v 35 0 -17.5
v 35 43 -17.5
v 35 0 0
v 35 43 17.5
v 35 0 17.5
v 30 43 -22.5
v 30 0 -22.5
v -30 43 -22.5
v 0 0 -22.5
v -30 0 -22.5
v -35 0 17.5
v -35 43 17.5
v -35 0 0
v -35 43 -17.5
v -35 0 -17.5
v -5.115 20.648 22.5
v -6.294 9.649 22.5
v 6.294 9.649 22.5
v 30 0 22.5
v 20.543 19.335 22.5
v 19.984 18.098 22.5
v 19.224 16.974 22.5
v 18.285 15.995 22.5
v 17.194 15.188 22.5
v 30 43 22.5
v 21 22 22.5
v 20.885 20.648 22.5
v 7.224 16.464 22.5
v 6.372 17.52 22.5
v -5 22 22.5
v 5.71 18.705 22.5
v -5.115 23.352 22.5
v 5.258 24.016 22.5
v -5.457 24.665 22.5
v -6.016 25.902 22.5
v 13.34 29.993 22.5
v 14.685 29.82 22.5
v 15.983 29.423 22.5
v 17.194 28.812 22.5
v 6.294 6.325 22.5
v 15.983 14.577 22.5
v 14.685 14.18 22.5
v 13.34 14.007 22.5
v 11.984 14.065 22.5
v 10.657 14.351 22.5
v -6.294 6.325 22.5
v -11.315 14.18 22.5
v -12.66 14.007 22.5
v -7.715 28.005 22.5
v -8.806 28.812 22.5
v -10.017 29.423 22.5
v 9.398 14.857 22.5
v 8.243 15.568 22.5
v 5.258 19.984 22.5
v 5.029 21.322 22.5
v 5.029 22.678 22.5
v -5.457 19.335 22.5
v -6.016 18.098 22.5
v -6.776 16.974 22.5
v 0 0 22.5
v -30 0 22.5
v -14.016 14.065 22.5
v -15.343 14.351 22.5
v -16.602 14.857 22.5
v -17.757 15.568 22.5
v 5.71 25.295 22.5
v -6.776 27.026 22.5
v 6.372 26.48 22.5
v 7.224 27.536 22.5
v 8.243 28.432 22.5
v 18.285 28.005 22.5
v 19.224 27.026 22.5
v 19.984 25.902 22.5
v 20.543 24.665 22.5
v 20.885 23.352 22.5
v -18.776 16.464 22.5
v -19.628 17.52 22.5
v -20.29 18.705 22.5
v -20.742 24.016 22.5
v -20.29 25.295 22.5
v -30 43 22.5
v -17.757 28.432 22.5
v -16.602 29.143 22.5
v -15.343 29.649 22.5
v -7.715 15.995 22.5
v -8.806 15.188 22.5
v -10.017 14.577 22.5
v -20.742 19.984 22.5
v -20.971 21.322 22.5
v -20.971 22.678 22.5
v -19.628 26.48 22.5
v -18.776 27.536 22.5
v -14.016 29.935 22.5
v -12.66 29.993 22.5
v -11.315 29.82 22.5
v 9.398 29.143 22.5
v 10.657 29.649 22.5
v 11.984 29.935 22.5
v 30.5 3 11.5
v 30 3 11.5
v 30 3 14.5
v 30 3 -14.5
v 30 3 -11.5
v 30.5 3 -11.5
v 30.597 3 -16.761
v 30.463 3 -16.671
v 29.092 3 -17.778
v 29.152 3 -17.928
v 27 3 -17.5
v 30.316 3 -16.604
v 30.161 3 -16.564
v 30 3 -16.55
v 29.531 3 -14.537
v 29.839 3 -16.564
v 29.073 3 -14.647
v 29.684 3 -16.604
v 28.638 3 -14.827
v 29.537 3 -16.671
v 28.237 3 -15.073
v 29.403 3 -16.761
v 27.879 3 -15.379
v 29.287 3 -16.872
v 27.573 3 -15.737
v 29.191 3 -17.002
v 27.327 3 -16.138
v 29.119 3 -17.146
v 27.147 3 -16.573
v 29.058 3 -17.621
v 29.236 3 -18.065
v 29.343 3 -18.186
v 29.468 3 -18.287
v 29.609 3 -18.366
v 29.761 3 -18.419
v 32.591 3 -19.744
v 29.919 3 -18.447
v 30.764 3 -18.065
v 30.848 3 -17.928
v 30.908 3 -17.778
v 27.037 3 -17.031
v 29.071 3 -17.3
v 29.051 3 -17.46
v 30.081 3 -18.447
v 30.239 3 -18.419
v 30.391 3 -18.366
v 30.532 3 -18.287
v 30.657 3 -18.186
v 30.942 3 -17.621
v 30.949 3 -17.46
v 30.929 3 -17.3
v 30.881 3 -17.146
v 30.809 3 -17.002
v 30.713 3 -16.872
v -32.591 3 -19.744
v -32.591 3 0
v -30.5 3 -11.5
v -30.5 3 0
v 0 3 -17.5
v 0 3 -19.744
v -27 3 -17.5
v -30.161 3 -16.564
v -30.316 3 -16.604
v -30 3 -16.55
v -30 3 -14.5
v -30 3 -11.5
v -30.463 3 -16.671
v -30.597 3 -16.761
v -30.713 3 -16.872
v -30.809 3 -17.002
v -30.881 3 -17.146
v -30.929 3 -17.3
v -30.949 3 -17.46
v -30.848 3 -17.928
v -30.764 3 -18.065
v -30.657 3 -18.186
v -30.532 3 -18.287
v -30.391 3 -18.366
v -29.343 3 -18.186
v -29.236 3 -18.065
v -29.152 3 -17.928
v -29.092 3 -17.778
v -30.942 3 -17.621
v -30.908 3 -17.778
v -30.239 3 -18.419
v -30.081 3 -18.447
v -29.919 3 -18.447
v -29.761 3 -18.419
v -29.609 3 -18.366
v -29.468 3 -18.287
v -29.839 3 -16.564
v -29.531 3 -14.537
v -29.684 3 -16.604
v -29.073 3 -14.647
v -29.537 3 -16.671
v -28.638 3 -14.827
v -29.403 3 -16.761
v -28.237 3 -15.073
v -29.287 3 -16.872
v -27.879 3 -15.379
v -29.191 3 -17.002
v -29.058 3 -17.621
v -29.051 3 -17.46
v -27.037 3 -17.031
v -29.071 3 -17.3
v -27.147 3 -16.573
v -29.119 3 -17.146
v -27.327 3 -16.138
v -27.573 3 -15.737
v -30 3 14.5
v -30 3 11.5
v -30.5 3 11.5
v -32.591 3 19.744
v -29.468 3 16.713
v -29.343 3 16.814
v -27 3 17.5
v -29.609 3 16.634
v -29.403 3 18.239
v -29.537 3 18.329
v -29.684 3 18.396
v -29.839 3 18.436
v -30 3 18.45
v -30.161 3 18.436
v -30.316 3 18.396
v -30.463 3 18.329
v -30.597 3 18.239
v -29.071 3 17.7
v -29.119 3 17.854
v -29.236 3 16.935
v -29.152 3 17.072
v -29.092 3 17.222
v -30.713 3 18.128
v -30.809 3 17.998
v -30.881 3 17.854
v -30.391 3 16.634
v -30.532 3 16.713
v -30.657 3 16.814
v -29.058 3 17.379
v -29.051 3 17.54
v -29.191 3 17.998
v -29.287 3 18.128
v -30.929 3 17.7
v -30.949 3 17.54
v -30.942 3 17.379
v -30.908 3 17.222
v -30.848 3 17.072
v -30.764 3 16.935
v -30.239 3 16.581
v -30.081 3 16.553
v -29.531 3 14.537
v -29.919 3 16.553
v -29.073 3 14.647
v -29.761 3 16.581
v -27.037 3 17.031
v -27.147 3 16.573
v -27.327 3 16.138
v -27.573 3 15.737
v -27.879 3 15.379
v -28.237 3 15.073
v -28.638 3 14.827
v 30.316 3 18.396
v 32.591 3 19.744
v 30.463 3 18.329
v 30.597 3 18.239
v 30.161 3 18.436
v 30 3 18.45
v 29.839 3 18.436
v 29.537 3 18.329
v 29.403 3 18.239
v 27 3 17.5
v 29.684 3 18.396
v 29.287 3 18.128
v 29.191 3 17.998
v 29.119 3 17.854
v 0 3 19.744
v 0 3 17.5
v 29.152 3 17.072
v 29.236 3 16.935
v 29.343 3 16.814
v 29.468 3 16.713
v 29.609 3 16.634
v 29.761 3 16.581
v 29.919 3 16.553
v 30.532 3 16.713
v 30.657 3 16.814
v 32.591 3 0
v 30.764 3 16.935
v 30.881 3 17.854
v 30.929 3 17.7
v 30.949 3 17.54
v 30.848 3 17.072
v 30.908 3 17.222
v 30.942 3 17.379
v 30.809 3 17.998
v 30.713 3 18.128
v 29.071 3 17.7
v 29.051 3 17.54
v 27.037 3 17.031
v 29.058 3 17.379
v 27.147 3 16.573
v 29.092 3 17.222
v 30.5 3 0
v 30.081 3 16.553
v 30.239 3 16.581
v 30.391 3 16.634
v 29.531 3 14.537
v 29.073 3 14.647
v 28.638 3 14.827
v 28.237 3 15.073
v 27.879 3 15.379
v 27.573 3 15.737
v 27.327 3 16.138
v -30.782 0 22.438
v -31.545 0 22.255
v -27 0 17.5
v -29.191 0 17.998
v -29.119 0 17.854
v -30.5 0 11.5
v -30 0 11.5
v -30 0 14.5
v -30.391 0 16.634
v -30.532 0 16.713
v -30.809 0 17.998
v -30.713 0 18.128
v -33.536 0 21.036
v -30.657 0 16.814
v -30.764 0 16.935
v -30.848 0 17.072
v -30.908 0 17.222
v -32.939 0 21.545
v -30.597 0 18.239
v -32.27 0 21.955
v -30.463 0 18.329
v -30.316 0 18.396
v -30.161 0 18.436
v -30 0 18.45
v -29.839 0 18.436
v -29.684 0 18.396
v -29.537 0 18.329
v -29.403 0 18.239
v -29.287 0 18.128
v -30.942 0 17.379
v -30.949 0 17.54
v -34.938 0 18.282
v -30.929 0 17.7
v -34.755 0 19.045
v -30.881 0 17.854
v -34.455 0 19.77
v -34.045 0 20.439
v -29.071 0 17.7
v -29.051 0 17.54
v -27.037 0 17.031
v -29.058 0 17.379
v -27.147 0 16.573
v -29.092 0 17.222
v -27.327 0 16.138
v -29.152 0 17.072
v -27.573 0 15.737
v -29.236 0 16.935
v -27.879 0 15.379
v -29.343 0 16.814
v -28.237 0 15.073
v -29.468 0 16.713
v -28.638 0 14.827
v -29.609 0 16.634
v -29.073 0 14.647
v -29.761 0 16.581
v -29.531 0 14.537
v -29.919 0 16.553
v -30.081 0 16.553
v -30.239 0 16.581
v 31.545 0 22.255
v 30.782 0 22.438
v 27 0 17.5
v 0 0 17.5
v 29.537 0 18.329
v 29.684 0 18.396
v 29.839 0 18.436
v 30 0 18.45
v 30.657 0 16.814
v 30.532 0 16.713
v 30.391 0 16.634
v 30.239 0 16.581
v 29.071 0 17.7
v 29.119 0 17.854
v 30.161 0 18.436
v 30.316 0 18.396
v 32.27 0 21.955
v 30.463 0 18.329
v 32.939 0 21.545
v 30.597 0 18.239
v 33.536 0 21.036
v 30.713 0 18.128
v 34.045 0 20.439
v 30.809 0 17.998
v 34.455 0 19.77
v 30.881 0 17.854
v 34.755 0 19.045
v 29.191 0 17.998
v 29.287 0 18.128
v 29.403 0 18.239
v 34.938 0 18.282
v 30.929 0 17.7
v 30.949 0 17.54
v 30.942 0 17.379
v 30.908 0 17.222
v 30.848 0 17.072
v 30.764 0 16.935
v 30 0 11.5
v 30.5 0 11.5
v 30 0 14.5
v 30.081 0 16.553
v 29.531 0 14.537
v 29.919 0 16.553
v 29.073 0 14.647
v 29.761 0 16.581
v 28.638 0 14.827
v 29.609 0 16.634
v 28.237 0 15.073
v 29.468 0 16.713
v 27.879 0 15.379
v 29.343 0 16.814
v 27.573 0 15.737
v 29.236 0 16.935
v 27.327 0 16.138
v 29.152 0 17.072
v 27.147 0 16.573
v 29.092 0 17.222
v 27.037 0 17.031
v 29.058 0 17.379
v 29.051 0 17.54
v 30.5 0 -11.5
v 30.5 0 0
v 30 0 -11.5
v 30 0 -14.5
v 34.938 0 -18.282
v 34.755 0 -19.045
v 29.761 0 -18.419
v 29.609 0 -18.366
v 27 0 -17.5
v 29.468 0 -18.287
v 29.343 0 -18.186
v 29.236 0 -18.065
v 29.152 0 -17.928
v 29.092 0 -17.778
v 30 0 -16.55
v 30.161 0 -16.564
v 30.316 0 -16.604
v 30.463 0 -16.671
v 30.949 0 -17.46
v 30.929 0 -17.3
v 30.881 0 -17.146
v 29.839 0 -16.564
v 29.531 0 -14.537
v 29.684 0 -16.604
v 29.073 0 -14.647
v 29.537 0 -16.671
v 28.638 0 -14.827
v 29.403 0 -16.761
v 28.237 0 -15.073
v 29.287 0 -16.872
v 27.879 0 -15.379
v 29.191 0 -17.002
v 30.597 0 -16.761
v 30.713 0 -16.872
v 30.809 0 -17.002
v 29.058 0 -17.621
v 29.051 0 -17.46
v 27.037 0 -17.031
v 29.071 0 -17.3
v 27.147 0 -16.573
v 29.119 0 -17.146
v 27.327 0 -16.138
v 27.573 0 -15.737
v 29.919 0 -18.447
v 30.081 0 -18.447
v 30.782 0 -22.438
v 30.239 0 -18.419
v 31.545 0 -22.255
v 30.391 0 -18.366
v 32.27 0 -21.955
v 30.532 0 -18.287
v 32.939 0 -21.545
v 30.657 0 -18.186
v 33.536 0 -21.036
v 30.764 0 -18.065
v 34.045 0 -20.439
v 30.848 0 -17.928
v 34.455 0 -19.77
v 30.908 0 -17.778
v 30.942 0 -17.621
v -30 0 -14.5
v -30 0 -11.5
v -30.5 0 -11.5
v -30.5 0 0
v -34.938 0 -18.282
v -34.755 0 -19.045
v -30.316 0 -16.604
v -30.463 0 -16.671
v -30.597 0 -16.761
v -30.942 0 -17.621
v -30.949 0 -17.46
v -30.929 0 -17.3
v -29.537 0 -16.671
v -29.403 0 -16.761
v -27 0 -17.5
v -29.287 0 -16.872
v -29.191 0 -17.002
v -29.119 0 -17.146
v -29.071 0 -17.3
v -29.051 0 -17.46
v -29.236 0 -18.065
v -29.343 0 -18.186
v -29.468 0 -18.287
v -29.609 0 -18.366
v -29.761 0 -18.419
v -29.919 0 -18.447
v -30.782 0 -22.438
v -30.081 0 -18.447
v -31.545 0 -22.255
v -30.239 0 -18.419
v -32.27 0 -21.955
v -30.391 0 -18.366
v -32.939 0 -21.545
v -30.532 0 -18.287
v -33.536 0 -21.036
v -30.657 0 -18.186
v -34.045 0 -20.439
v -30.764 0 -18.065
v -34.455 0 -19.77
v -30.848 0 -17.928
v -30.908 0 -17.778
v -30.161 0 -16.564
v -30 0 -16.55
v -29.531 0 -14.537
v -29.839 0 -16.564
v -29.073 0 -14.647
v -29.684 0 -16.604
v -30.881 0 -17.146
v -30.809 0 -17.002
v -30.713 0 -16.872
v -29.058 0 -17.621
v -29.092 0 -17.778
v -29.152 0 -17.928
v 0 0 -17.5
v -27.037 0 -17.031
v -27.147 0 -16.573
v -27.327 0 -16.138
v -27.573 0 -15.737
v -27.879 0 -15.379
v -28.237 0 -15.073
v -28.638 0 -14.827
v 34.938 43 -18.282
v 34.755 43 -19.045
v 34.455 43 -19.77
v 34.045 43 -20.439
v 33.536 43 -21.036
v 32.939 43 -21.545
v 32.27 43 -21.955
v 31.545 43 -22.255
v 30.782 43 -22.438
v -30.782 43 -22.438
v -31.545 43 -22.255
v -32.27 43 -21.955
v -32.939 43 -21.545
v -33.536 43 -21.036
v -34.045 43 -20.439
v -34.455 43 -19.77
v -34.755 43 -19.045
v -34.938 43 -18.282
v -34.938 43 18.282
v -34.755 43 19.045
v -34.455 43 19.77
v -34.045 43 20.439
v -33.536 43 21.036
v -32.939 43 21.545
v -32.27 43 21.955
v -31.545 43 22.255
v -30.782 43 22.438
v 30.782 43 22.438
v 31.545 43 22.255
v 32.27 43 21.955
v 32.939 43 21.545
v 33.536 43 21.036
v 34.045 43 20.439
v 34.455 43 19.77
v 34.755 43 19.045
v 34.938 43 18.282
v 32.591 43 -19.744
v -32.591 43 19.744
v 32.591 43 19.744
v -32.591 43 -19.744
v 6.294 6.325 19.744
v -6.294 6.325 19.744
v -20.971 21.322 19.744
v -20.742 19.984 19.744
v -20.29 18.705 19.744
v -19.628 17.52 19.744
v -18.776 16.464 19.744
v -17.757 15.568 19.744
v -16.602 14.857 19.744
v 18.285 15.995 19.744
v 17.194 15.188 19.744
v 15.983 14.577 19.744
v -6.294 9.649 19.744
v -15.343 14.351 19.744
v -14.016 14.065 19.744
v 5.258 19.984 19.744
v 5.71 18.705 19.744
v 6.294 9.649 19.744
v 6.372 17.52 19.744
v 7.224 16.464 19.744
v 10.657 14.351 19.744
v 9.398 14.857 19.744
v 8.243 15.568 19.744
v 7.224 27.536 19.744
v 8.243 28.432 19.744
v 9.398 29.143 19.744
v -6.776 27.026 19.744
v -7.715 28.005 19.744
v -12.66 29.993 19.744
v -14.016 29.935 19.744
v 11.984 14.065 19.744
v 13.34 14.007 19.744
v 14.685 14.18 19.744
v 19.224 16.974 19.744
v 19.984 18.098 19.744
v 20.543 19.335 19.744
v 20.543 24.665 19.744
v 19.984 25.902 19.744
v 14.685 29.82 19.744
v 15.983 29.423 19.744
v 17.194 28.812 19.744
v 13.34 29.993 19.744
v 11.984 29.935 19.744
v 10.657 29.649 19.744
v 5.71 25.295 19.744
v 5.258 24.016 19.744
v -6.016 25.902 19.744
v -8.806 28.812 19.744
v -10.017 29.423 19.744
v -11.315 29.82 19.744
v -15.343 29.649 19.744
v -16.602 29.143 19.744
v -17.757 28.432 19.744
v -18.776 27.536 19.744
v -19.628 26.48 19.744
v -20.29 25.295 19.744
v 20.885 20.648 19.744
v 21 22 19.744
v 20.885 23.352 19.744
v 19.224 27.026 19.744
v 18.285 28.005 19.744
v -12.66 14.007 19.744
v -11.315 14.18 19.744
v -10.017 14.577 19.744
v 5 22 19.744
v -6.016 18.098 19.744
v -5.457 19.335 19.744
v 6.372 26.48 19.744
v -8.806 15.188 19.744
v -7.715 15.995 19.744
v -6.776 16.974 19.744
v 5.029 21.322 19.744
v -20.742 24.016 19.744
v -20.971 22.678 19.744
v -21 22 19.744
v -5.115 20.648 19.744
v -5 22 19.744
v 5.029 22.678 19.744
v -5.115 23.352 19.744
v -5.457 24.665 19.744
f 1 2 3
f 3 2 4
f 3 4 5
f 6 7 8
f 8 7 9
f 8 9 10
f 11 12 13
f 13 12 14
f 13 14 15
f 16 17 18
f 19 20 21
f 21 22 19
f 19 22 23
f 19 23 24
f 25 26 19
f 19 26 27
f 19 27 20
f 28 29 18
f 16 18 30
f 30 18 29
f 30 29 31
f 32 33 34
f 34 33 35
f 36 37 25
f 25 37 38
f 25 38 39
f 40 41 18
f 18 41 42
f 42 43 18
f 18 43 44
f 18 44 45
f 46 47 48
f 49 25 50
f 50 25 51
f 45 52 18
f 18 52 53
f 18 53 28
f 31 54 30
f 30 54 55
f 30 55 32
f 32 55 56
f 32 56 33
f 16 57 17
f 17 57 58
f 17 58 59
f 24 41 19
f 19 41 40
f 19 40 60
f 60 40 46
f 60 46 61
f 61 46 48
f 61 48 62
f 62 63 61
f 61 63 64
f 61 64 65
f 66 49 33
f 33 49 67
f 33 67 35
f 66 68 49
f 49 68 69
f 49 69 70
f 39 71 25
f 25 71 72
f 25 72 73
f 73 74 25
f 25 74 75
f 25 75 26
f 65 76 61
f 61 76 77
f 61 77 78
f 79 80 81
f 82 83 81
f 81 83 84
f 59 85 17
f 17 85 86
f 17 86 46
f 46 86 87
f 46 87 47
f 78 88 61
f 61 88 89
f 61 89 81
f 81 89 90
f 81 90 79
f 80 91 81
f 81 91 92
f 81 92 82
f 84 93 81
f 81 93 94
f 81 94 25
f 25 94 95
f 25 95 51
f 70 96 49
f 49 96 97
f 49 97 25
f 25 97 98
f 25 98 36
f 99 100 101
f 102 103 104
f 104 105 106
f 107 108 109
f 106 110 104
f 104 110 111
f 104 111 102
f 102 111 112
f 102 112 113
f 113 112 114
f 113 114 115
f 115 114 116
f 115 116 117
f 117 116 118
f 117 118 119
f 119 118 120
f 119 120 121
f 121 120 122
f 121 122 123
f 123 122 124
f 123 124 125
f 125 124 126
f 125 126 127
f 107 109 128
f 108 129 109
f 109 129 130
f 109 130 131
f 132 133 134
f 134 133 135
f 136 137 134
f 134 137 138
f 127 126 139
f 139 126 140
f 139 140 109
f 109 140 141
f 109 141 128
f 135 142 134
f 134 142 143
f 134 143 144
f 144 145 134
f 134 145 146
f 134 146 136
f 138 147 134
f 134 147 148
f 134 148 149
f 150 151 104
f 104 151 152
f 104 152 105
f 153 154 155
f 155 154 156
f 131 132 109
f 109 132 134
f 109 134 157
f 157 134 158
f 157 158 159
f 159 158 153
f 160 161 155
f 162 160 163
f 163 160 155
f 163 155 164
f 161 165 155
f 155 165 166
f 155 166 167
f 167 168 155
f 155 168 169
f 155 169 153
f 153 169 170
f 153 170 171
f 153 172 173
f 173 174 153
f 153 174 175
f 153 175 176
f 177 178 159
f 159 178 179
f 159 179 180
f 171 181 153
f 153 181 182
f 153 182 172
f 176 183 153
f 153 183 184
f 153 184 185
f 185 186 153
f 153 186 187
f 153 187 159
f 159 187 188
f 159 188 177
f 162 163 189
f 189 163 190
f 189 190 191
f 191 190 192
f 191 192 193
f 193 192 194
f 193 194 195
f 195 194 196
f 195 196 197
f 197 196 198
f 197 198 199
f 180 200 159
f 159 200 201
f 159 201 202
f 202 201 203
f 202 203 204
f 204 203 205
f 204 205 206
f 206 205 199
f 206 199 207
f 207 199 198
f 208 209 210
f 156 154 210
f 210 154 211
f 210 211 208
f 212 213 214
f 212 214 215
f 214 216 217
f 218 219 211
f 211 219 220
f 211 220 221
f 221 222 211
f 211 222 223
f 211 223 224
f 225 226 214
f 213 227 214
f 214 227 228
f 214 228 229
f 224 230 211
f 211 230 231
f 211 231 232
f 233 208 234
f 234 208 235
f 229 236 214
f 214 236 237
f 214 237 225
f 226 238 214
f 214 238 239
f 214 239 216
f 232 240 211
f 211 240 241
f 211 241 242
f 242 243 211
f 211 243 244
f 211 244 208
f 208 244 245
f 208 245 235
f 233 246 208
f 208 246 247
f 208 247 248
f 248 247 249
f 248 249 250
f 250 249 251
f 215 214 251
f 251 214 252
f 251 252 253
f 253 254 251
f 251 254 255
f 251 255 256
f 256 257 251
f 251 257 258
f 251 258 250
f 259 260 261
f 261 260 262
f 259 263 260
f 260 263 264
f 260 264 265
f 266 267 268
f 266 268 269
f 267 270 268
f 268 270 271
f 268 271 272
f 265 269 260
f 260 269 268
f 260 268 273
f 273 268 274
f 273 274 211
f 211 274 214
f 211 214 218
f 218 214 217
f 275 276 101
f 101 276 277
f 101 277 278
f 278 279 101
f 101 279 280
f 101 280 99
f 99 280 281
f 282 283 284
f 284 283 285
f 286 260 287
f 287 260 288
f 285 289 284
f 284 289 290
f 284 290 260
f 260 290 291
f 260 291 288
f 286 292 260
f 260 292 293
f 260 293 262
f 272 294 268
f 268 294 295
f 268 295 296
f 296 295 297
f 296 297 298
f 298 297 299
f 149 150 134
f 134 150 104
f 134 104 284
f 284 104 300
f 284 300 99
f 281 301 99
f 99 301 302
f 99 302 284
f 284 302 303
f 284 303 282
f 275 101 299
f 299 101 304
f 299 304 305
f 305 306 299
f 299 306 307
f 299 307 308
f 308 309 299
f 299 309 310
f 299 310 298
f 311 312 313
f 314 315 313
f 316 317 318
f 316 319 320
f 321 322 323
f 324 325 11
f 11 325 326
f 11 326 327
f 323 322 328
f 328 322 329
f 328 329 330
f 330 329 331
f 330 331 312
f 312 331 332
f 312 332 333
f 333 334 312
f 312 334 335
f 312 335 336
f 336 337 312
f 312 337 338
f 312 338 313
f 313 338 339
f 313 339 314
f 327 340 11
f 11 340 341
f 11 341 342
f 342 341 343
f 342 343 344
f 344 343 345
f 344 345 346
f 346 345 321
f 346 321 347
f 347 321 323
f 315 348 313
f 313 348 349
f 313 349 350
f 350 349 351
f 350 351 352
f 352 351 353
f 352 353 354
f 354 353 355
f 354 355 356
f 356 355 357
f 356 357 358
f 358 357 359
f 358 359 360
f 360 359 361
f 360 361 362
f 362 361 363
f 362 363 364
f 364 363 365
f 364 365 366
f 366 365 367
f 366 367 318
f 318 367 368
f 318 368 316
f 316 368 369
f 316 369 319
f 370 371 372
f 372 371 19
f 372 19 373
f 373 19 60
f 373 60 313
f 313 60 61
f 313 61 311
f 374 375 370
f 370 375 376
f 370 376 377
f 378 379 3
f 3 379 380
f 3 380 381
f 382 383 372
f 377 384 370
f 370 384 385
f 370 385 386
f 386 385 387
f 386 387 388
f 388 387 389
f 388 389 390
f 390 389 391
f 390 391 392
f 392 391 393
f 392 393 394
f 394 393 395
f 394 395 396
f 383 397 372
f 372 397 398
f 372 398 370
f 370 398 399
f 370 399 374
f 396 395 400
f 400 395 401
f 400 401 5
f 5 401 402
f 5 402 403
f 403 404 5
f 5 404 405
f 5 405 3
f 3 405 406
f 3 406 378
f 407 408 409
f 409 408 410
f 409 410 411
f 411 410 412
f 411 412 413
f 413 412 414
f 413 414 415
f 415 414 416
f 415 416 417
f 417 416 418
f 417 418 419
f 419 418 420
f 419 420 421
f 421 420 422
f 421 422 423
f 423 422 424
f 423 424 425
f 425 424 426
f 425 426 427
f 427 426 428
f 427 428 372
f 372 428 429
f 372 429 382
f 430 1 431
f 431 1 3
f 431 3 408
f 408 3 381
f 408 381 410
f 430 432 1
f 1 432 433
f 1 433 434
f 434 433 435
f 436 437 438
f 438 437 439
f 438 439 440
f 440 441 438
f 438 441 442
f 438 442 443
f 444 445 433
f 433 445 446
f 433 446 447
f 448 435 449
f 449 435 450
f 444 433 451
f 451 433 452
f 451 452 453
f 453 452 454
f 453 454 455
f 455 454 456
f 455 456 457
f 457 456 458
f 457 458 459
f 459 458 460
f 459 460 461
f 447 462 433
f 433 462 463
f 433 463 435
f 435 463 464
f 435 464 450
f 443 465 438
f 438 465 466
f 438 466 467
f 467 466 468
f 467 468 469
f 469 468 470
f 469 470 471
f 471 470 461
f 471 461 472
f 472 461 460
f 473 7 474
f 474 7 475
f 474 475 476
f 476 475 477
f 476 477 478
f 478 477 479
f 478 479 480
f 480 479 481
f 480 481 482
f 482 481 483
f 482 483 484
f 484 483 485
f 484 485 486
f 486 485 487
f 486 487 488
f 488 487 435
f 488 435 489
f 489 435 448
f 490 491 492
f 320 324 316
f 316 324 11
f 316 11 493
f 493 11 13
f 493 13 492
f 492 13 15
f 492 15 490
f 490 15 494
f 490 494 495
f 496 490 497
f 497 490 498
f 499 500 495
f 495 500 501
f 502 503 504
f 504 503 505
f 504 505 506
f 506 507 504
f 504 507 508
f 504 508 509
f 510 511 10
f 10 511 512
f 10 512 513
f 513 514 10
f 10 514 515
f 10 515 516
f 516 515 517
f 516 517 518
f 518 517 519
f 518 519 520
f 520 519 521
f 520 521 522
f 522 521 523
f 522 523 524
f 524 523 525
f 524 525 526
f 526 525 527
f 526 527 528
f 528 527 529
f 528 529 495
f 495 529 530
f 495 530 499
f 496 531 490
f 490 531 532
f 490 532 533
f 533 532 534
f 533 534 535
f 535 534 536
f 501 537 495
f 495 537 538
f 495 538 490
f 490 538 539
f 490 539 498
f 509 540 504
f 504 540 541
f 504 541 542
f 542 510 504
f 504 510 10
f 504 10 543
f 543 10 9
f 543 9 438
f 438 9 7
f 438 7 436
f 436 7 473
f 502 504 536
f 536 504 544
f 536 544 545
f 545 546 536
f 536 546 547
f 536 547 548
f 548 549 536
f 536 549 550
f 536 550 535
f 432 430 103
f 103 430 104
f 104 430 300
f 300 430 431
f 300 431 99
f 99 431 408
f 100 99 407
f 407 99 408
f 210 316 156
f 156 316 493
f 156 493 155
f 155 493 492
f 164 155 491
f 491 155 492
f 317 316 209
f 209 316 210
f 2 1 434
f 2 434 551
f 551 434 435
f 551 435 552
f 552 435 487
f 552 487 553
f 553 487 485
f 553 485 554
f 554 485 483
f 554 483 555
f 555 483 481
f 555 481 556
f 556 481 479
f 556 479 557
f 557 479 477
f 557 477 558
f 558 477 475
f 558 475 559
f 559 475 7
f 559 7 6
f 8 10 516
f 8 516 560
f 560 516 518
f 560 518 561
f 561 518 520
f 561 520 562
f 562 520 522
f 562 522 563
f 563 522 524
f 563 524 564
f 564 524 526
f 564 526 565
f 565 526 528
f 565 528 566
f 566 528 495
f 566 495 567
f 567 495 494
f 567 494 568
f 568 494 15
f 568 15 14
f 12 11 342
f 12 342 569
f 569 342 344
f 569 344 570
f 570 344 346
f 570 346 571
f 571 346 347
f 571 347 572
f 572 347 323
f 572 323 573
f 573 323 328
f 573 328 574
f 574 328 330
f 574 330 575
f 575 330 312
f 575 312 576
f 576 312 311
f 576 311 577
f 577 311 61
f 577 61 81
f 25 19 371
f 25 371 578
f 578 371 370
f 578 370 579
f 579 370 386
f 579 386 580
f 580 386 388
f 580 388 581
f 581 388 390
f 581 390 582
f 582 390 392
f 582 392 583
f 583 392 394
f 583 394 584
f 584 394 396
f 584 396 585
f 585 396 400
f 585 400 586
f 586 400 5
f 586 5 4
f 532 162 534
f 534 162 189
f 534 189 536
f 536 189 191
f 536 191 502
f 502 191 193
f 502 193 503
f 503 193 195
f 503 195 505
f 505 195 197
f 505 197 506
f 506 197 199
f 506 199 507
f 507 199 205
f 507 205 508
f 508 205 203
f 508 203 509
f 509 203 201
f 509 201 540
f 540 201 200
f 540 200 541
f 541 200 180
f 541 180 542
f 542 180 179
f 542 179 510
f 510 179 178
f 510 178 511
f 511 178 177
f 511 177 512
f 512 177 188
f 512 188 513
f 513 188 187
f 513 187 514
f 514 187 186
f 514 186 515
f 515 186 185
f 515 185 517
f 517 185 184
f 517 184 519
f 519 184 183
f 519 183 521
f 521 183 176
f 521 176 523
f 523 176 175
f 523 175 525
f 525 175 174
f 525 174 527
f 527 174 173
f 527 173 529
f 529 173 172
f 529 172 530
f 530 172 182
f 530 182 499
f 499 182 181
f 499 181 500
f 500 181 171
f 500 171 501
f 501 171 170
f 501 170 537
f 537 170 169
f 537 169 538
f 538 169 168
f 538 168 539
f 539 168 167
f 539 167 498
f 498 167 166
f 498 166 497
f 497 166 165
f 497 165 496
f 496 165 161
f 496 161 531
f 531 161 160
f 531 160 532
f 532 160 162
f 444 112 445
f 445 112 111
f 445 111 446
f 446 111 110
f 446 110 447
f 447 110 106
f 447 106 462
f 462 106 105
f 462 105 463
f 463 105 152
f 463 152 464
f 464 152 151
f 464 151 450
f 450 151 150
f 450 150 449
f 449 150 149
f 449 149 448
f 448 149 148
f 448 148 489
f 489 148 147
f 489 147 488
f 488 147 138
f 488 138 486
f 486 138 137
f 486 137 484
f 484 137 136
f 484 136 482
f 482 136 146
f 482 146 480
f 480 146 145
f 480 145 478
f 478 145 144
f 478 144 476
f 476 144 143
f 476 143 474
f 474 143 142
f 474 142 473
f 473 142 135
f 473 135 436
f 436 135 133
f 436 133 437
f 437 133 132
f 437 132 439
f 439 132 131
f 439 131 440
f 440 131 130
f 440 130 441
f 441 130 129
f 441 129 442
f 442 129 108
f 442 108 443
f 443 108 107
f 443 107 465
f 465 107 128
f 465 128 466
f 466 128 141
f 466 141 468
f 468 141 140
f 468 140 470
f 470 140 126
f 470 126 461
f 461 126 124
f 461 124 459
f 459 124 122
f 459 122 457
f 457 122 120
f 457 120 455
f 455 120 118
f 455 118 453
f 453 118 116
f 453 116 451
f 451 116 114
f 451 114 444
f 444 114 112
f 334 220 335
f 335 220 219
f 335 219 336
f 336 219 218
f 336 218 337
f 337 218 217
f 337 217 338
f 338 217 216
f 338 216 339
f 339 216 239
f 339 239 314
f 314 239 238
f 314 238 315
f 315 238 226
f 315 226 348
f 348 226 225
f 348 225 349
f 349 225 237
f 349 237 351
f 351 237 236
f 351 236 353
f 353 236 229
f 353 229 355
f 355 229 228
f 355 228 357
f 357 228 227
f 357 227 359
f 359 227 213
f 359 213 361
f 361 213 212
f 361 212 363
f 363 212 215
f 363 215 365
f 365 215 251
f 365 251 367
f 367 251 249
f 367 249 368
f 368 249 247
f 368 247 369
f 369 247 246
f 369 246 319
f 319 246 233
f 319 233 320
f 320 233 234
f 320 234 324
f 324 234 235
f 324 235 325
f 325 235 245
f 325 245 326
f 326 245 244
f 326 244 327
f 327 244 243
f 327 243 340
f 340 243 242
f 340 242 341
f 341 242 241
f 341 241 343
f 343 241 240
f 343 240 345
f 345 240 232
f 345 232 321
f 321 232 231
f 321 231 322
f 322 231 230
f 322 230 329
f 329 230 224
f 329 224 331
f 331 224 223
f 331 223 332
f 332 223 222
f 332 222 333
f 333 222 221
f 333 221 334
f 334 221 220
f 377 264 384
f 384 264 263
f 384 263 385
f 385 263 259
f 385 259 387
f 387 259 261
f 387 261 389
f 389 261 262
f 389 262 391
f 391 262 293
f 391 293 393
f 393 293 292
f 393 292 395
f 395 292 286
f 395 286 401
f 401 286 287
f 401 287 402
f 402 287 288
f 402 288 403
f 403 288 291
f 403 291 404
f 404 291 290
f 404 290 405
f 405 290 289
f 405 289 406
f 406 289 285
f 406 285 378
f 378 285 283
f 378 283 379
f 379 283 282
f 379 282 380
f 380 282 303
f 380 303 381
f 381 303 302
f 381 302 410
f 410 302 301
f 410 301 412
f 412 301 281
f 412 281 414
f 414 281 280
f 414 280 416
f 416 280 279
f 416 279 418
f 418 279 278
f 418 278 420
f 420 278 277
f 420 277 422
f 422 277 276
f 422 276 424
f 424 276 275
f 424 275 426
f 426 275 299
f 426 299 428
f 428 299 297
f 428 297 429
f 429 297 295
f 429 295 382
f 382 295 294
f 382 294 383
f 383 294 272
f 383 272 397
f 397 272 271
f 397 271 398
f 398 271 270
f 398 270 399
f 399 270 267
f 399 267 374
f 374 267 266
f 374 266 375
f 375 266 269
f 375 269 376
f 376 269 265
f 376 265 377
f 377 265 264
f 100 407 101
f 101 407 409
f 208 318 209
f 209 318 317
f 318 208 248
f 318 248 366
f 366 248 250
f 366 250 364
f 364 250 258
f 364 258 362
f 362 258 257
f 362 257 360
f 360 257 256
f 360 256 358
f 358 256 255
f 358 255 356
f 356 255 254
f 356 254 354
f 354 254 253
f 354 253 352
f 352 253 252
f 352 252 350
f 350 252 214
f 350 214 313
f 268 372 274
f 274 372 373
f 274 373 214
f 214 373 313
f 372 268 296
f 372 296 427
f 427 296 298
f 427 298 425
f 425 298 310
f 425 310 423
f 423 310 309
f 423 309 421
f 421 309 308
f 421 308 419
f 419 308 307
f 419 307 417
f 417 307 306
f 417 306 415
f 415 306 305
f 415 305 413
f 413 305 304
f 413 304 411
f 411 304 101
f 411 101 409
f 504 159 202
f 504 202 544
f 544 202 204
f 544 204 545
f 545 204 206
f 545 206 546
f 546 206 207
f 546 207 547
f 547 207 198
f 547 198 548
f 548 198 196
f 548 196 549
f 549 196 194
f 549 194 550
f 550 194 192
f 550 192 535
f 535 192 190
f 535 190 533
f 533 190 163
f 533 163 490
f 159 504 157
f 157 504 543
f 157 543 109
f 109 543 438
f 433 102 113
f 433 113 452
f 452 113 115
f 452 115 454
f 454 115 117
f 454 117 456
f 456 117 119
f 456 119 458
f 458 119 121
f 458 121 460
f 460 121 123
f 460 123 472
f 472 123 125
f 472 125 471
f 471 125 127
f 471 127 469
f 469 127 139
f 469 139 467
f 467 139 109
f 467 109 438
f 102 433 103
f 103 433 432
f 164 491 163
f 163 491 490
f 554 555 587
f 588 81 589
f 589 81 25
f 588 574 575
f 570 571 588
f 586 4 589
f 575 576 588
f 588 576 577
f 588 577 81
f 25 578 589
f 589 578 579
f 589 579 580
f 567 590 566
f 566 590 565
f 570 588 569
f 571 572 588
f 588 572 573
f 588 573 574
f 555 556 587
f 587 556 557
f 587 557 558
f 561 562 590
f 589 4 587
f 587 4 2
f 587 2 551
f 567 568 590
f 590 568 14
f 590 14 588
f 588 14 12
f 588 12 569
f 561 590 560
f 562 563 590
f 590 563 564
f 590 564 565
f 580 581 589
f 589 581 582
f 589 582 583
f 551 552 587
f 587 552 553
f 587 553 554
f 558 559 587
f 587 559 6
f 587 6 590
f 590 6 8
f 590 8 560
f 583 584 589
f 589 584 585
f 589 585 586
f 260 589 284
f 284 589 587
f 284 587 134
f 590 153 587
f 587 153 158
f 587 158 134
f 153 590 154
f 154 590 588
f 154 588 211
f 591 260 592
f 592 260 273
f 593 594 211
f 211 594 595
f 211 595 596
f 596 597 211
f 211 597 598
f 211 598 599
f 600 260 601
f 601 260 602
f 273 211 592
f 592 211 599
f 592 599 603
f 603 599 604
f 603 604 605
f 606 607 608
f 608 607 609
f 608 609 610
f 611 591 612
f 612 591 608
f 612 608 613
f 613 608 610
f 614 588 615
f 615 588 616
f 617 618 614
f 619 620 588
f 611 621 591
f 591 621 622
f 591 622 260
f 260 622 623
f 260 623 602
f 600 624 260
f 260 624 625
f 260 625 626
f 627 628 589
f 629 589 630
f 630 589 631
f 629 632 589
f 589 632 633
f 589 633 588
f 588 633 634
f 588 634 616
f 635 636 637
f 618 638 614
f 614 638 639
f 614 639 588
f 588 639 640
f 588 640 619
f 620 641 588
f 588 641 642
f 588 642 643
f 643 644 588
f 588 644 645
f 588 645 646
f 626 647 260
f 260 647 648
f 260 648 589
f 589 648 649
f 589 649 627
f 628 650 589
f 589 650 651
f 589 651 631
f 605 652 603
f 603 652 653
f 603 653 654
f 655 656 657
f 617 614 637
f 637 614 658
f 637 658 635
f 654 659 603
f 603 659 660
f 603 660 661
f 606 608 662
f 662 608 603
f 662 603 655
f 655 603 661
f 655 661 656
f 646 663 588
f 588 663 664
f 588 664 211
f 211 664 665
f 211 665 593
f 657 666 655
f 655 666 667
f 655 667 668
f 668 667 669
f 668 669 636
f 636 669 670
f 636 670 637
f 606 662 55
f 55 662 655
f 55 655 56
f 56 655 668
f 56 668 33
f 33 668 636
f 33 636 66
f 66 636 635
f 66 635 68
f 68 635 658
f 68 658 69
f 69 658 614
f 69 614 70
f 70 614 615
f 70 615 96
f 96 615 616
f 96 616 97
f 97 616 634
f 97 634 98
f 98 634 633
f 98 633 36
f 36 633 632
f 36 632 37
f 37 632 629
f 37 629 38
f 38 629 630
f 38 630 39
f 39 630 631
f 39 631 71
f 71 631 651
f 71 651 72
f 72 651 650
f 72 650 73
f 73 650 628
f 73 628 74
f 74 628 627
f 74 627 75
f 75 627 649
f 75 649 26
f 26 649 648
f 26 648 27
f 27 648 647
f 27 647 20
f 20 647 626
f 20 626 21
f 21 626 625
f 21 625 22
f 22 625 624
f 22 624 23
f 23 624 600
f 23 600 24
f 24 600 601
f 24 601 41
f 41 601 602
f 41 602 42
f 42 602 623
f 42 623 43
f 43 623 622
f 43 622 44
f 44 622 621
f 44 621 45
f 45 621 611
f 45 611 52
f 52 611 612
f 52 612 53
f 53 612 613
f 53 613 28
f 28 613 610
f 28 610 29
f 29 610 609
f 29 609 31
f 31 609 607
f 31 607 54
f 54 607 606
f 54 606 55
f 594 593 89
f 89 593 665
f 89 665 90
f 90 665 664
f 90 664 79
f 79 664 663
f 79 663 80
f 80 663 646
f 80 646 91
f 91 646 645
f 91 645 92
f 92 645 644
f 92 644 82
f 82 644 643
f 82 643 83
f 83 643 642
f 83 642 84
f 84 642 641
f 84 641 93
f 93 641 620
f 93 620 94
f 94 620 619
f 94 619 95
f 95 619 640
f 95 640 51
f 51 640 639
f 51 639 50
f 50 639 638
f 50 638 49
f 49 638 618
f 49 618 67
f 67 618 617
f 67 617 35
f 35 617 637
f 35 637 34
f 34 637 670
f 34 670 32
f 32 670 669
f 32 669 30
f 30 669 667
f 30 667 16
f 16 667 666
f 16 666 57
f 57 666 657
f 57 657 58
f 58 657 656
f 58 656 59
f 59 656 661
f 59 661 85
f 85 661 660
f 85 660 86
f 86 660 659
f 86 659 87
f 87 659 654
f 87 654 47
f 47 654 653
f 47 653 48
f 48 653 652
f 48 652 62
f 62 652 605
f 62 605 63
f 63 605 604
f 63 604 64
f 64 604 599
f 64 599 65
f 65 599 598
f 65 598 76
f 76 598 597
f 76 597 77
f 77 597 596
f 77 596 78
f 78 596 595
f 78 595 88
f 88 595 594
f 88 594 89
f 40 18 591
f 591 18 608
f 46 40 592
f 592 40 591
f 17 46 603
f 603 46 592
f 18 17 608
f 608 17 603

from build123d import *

# Parameters (mm, degrees)
SKETCH_1_W          = 70
SKETCH_1_H          = 45
EXTRUDE_1_DEPTH     = 3
SKETCH_2_W          = 13
SKETCH_2_H          = 23
CUT_EXTRUDE_1_DEPTH = 10
SKETCH_3_R          = 0.95
CUT_EXTRUDE_2_DEPTH = 10
FILLET_1_R          = 5
FILLET_2_R          = 5
SKETCH_4_R          = 0.95
CUT_EXTRUDE_3_DEPTH = 10
CUT_EXTRUDE_4_DEPTH = 10
SKETCH_9_W          = 65.182596022
SKETCH_9_H          = 39.488918008
EXTRUDE_2_DEPTH     = 40
SKETCH_10_R         = 8
SKETCH_10_W         = 12.58723815
SKETCH_10_H         = 3.324068903
CUT_EXTRUDE_5_DEPTH = 26


with BuildPart() as part:
    # 草图1 → 凸台-拉伸1 (new body)
    with BuildSketch(Plane(origin=(0, 0, 0), x_dir=(1, 0, 0), z_dir=(0, 1, 0))):
        Rectangle(SKETCH_1_W, SKETCH_1_H)
    extrude(amount=EXTRUDE_1_DEPTH)

    # 草图2 → 切除-拉伸1 (cut)
    with BuildSketch(Plane(origin=(0, 3, 0), x_dir=(1, 0, 0), z_dir=(0, 1, 0))):
        with Locations((24, 0)):
            Rectangle(SKETCH_2_W, SKETCH_2_H)
        with Locations((-24, 0)):
            Rectangle(SKETCH_2_W, SKETCH_2_H)
    extrude(amount=-CUT_EXTRUDE_1_DEPTH, mode=Mode.SUBTRACT)

    # 草图3 → 切除-拉伸2 (cut)
    with BuildSketch(Plane(origin=(0, 3, 0), x_dir=(1, 0, 0), z_dir=(0, 1, 0))):
        with Locations((-24, 14)):
            Circle(SKETCH_3_R)
        with Locations((-24, -14)):
            Circle(SKETCH_3_R)
        with Locations((24, 14)):
            Circle(SKETCH_3_R)
        with Locations((24, -14)):
            Circle(SKETCH_3_R)
    extrude(amount=-CUT_EXTRUDE_2_DEPTH, mode=Mode.SUBTRACT)

    # 圆角1
    fillet_1_edges = [part.edges().sort_by_distance(p)[0] for p in [
        (35, 1.5, -22.5),
    ]]
    fillet(fillet_1_edges, radius=FILLET_1_R)

    # 圆角2
    fillet_2_edges = [part.edges().sort_by_distance(p)[0] for p in [
        (35, 1.5, 22.5),
        (-35, 1.5, 22.5),
        (-35, 1.5, -22.5),
    ]]
    fillet(fillet_2_edges, radius=FILLET_2_R)

    # 草图4 → 切除-拉伸3 (cut)
    with BuildSketch(Plane(origin=(0, 3, 0), x_dir=(1, 0, 0), z_dir=(0, 1, 0))):
        with Locations((-30, 17.5)):
            Circle(SKETCH_4_R)
        with Locations((30, 17.5)):
            Circle(SKETCH_4_R)
        with Locations((-30, -17.5)):
            Circle(SKETCH_4_R)
        with Locations((30, -17.5)):
            Circle(SKETCH_4_R)
    extrude(amount=-CUT_EXTRUDE_3_DEPTH, mode=Mode.SUBTRACT)

    # 草图8 → 切除-拉伸4 (cut)
    with BuildSketch(Plane(origin=(0, 3, 0), x_dir=(1, 0, 0), z_dir=(0, 1, 0))):
        with BuildLine():
            Line((-27, 17.5), (27, 17.5))
            ThreePointArc((27, 17.5), (27.878679656, 15.378679656), (30, 14.5))
            Line((30, 14.5), (30, -14.5))
            ThreePointArc((30, -14.5), (27.878679656, -15.378679656), (27, -17.5))
            Line((27, -17.5), (-27, -17.5))
            ThreePointArc((-27, -17.5), (-27.878679656, -15.378679656), (-30, -14.5))
            Line((-30, -14.5), (-30, 14.5))
            ThreePointArc((-30, 14.5), (-27.878679656, 15.378679656), (-27, 17.5))
        make_face()
    extrude(amount=-CUT_EXTRUDE_4_DEPTH, mode=Mode.SUBTRACT)

    # 草图9 → 凸台-拉伸2 (add)
    with BuildSketch(Plane(origin=(0, 3, 0), x_dir=(1, 0, 0), z_dir=(0, 1, 0))):
        with BuildLine():
            Line((-30, -22.5), (30, -22.5))
            ThreePointArc((30, -22.5), (33.535533906, -21.035533906), (35, -17.5))
            Line((35, -17.5), (35, 17.5))
            ThreePointArc((35, 17.5), (33.535533906, 21.035533906), (30, 22.5))
            Line((30, 22.5), (-30, 22.5))
            ThreePointArc((-30, 22.5), (-33.535533906, 21.035533906), (-35, 17.5))
            Line((-35, 17.5), (-35, -17.5))
            ThreePointArc((-35, -17.5), (-33.535533906, -21.035533906), (-30, -22.5))
        make_face()
        Rectangle(SKETCH_9_W, SKETCH_9_H, mode=Mode.SUBTRACT)
    extrude(amount=EXTRUDE_2_DEPTH)

    # 草图10 → 切除-拉伸5 (cut)
    with BuildSketch(Plane.XY.offset(22.5)):
        with Locations((13, 22)):
            Circle(SKETCH_10_R)
        with Locations((-13, 22)):
            Circle(SKETCH_10_R)
        with Locations((0, 7.986881032)):
            Rectangle(SKETCH_10_W, SKETCH_10_H)
    extrude(amount=-CUT_EXTRUDE_5_DEPTH, mode=Mode.SUBTRACT)


solid = part.part
